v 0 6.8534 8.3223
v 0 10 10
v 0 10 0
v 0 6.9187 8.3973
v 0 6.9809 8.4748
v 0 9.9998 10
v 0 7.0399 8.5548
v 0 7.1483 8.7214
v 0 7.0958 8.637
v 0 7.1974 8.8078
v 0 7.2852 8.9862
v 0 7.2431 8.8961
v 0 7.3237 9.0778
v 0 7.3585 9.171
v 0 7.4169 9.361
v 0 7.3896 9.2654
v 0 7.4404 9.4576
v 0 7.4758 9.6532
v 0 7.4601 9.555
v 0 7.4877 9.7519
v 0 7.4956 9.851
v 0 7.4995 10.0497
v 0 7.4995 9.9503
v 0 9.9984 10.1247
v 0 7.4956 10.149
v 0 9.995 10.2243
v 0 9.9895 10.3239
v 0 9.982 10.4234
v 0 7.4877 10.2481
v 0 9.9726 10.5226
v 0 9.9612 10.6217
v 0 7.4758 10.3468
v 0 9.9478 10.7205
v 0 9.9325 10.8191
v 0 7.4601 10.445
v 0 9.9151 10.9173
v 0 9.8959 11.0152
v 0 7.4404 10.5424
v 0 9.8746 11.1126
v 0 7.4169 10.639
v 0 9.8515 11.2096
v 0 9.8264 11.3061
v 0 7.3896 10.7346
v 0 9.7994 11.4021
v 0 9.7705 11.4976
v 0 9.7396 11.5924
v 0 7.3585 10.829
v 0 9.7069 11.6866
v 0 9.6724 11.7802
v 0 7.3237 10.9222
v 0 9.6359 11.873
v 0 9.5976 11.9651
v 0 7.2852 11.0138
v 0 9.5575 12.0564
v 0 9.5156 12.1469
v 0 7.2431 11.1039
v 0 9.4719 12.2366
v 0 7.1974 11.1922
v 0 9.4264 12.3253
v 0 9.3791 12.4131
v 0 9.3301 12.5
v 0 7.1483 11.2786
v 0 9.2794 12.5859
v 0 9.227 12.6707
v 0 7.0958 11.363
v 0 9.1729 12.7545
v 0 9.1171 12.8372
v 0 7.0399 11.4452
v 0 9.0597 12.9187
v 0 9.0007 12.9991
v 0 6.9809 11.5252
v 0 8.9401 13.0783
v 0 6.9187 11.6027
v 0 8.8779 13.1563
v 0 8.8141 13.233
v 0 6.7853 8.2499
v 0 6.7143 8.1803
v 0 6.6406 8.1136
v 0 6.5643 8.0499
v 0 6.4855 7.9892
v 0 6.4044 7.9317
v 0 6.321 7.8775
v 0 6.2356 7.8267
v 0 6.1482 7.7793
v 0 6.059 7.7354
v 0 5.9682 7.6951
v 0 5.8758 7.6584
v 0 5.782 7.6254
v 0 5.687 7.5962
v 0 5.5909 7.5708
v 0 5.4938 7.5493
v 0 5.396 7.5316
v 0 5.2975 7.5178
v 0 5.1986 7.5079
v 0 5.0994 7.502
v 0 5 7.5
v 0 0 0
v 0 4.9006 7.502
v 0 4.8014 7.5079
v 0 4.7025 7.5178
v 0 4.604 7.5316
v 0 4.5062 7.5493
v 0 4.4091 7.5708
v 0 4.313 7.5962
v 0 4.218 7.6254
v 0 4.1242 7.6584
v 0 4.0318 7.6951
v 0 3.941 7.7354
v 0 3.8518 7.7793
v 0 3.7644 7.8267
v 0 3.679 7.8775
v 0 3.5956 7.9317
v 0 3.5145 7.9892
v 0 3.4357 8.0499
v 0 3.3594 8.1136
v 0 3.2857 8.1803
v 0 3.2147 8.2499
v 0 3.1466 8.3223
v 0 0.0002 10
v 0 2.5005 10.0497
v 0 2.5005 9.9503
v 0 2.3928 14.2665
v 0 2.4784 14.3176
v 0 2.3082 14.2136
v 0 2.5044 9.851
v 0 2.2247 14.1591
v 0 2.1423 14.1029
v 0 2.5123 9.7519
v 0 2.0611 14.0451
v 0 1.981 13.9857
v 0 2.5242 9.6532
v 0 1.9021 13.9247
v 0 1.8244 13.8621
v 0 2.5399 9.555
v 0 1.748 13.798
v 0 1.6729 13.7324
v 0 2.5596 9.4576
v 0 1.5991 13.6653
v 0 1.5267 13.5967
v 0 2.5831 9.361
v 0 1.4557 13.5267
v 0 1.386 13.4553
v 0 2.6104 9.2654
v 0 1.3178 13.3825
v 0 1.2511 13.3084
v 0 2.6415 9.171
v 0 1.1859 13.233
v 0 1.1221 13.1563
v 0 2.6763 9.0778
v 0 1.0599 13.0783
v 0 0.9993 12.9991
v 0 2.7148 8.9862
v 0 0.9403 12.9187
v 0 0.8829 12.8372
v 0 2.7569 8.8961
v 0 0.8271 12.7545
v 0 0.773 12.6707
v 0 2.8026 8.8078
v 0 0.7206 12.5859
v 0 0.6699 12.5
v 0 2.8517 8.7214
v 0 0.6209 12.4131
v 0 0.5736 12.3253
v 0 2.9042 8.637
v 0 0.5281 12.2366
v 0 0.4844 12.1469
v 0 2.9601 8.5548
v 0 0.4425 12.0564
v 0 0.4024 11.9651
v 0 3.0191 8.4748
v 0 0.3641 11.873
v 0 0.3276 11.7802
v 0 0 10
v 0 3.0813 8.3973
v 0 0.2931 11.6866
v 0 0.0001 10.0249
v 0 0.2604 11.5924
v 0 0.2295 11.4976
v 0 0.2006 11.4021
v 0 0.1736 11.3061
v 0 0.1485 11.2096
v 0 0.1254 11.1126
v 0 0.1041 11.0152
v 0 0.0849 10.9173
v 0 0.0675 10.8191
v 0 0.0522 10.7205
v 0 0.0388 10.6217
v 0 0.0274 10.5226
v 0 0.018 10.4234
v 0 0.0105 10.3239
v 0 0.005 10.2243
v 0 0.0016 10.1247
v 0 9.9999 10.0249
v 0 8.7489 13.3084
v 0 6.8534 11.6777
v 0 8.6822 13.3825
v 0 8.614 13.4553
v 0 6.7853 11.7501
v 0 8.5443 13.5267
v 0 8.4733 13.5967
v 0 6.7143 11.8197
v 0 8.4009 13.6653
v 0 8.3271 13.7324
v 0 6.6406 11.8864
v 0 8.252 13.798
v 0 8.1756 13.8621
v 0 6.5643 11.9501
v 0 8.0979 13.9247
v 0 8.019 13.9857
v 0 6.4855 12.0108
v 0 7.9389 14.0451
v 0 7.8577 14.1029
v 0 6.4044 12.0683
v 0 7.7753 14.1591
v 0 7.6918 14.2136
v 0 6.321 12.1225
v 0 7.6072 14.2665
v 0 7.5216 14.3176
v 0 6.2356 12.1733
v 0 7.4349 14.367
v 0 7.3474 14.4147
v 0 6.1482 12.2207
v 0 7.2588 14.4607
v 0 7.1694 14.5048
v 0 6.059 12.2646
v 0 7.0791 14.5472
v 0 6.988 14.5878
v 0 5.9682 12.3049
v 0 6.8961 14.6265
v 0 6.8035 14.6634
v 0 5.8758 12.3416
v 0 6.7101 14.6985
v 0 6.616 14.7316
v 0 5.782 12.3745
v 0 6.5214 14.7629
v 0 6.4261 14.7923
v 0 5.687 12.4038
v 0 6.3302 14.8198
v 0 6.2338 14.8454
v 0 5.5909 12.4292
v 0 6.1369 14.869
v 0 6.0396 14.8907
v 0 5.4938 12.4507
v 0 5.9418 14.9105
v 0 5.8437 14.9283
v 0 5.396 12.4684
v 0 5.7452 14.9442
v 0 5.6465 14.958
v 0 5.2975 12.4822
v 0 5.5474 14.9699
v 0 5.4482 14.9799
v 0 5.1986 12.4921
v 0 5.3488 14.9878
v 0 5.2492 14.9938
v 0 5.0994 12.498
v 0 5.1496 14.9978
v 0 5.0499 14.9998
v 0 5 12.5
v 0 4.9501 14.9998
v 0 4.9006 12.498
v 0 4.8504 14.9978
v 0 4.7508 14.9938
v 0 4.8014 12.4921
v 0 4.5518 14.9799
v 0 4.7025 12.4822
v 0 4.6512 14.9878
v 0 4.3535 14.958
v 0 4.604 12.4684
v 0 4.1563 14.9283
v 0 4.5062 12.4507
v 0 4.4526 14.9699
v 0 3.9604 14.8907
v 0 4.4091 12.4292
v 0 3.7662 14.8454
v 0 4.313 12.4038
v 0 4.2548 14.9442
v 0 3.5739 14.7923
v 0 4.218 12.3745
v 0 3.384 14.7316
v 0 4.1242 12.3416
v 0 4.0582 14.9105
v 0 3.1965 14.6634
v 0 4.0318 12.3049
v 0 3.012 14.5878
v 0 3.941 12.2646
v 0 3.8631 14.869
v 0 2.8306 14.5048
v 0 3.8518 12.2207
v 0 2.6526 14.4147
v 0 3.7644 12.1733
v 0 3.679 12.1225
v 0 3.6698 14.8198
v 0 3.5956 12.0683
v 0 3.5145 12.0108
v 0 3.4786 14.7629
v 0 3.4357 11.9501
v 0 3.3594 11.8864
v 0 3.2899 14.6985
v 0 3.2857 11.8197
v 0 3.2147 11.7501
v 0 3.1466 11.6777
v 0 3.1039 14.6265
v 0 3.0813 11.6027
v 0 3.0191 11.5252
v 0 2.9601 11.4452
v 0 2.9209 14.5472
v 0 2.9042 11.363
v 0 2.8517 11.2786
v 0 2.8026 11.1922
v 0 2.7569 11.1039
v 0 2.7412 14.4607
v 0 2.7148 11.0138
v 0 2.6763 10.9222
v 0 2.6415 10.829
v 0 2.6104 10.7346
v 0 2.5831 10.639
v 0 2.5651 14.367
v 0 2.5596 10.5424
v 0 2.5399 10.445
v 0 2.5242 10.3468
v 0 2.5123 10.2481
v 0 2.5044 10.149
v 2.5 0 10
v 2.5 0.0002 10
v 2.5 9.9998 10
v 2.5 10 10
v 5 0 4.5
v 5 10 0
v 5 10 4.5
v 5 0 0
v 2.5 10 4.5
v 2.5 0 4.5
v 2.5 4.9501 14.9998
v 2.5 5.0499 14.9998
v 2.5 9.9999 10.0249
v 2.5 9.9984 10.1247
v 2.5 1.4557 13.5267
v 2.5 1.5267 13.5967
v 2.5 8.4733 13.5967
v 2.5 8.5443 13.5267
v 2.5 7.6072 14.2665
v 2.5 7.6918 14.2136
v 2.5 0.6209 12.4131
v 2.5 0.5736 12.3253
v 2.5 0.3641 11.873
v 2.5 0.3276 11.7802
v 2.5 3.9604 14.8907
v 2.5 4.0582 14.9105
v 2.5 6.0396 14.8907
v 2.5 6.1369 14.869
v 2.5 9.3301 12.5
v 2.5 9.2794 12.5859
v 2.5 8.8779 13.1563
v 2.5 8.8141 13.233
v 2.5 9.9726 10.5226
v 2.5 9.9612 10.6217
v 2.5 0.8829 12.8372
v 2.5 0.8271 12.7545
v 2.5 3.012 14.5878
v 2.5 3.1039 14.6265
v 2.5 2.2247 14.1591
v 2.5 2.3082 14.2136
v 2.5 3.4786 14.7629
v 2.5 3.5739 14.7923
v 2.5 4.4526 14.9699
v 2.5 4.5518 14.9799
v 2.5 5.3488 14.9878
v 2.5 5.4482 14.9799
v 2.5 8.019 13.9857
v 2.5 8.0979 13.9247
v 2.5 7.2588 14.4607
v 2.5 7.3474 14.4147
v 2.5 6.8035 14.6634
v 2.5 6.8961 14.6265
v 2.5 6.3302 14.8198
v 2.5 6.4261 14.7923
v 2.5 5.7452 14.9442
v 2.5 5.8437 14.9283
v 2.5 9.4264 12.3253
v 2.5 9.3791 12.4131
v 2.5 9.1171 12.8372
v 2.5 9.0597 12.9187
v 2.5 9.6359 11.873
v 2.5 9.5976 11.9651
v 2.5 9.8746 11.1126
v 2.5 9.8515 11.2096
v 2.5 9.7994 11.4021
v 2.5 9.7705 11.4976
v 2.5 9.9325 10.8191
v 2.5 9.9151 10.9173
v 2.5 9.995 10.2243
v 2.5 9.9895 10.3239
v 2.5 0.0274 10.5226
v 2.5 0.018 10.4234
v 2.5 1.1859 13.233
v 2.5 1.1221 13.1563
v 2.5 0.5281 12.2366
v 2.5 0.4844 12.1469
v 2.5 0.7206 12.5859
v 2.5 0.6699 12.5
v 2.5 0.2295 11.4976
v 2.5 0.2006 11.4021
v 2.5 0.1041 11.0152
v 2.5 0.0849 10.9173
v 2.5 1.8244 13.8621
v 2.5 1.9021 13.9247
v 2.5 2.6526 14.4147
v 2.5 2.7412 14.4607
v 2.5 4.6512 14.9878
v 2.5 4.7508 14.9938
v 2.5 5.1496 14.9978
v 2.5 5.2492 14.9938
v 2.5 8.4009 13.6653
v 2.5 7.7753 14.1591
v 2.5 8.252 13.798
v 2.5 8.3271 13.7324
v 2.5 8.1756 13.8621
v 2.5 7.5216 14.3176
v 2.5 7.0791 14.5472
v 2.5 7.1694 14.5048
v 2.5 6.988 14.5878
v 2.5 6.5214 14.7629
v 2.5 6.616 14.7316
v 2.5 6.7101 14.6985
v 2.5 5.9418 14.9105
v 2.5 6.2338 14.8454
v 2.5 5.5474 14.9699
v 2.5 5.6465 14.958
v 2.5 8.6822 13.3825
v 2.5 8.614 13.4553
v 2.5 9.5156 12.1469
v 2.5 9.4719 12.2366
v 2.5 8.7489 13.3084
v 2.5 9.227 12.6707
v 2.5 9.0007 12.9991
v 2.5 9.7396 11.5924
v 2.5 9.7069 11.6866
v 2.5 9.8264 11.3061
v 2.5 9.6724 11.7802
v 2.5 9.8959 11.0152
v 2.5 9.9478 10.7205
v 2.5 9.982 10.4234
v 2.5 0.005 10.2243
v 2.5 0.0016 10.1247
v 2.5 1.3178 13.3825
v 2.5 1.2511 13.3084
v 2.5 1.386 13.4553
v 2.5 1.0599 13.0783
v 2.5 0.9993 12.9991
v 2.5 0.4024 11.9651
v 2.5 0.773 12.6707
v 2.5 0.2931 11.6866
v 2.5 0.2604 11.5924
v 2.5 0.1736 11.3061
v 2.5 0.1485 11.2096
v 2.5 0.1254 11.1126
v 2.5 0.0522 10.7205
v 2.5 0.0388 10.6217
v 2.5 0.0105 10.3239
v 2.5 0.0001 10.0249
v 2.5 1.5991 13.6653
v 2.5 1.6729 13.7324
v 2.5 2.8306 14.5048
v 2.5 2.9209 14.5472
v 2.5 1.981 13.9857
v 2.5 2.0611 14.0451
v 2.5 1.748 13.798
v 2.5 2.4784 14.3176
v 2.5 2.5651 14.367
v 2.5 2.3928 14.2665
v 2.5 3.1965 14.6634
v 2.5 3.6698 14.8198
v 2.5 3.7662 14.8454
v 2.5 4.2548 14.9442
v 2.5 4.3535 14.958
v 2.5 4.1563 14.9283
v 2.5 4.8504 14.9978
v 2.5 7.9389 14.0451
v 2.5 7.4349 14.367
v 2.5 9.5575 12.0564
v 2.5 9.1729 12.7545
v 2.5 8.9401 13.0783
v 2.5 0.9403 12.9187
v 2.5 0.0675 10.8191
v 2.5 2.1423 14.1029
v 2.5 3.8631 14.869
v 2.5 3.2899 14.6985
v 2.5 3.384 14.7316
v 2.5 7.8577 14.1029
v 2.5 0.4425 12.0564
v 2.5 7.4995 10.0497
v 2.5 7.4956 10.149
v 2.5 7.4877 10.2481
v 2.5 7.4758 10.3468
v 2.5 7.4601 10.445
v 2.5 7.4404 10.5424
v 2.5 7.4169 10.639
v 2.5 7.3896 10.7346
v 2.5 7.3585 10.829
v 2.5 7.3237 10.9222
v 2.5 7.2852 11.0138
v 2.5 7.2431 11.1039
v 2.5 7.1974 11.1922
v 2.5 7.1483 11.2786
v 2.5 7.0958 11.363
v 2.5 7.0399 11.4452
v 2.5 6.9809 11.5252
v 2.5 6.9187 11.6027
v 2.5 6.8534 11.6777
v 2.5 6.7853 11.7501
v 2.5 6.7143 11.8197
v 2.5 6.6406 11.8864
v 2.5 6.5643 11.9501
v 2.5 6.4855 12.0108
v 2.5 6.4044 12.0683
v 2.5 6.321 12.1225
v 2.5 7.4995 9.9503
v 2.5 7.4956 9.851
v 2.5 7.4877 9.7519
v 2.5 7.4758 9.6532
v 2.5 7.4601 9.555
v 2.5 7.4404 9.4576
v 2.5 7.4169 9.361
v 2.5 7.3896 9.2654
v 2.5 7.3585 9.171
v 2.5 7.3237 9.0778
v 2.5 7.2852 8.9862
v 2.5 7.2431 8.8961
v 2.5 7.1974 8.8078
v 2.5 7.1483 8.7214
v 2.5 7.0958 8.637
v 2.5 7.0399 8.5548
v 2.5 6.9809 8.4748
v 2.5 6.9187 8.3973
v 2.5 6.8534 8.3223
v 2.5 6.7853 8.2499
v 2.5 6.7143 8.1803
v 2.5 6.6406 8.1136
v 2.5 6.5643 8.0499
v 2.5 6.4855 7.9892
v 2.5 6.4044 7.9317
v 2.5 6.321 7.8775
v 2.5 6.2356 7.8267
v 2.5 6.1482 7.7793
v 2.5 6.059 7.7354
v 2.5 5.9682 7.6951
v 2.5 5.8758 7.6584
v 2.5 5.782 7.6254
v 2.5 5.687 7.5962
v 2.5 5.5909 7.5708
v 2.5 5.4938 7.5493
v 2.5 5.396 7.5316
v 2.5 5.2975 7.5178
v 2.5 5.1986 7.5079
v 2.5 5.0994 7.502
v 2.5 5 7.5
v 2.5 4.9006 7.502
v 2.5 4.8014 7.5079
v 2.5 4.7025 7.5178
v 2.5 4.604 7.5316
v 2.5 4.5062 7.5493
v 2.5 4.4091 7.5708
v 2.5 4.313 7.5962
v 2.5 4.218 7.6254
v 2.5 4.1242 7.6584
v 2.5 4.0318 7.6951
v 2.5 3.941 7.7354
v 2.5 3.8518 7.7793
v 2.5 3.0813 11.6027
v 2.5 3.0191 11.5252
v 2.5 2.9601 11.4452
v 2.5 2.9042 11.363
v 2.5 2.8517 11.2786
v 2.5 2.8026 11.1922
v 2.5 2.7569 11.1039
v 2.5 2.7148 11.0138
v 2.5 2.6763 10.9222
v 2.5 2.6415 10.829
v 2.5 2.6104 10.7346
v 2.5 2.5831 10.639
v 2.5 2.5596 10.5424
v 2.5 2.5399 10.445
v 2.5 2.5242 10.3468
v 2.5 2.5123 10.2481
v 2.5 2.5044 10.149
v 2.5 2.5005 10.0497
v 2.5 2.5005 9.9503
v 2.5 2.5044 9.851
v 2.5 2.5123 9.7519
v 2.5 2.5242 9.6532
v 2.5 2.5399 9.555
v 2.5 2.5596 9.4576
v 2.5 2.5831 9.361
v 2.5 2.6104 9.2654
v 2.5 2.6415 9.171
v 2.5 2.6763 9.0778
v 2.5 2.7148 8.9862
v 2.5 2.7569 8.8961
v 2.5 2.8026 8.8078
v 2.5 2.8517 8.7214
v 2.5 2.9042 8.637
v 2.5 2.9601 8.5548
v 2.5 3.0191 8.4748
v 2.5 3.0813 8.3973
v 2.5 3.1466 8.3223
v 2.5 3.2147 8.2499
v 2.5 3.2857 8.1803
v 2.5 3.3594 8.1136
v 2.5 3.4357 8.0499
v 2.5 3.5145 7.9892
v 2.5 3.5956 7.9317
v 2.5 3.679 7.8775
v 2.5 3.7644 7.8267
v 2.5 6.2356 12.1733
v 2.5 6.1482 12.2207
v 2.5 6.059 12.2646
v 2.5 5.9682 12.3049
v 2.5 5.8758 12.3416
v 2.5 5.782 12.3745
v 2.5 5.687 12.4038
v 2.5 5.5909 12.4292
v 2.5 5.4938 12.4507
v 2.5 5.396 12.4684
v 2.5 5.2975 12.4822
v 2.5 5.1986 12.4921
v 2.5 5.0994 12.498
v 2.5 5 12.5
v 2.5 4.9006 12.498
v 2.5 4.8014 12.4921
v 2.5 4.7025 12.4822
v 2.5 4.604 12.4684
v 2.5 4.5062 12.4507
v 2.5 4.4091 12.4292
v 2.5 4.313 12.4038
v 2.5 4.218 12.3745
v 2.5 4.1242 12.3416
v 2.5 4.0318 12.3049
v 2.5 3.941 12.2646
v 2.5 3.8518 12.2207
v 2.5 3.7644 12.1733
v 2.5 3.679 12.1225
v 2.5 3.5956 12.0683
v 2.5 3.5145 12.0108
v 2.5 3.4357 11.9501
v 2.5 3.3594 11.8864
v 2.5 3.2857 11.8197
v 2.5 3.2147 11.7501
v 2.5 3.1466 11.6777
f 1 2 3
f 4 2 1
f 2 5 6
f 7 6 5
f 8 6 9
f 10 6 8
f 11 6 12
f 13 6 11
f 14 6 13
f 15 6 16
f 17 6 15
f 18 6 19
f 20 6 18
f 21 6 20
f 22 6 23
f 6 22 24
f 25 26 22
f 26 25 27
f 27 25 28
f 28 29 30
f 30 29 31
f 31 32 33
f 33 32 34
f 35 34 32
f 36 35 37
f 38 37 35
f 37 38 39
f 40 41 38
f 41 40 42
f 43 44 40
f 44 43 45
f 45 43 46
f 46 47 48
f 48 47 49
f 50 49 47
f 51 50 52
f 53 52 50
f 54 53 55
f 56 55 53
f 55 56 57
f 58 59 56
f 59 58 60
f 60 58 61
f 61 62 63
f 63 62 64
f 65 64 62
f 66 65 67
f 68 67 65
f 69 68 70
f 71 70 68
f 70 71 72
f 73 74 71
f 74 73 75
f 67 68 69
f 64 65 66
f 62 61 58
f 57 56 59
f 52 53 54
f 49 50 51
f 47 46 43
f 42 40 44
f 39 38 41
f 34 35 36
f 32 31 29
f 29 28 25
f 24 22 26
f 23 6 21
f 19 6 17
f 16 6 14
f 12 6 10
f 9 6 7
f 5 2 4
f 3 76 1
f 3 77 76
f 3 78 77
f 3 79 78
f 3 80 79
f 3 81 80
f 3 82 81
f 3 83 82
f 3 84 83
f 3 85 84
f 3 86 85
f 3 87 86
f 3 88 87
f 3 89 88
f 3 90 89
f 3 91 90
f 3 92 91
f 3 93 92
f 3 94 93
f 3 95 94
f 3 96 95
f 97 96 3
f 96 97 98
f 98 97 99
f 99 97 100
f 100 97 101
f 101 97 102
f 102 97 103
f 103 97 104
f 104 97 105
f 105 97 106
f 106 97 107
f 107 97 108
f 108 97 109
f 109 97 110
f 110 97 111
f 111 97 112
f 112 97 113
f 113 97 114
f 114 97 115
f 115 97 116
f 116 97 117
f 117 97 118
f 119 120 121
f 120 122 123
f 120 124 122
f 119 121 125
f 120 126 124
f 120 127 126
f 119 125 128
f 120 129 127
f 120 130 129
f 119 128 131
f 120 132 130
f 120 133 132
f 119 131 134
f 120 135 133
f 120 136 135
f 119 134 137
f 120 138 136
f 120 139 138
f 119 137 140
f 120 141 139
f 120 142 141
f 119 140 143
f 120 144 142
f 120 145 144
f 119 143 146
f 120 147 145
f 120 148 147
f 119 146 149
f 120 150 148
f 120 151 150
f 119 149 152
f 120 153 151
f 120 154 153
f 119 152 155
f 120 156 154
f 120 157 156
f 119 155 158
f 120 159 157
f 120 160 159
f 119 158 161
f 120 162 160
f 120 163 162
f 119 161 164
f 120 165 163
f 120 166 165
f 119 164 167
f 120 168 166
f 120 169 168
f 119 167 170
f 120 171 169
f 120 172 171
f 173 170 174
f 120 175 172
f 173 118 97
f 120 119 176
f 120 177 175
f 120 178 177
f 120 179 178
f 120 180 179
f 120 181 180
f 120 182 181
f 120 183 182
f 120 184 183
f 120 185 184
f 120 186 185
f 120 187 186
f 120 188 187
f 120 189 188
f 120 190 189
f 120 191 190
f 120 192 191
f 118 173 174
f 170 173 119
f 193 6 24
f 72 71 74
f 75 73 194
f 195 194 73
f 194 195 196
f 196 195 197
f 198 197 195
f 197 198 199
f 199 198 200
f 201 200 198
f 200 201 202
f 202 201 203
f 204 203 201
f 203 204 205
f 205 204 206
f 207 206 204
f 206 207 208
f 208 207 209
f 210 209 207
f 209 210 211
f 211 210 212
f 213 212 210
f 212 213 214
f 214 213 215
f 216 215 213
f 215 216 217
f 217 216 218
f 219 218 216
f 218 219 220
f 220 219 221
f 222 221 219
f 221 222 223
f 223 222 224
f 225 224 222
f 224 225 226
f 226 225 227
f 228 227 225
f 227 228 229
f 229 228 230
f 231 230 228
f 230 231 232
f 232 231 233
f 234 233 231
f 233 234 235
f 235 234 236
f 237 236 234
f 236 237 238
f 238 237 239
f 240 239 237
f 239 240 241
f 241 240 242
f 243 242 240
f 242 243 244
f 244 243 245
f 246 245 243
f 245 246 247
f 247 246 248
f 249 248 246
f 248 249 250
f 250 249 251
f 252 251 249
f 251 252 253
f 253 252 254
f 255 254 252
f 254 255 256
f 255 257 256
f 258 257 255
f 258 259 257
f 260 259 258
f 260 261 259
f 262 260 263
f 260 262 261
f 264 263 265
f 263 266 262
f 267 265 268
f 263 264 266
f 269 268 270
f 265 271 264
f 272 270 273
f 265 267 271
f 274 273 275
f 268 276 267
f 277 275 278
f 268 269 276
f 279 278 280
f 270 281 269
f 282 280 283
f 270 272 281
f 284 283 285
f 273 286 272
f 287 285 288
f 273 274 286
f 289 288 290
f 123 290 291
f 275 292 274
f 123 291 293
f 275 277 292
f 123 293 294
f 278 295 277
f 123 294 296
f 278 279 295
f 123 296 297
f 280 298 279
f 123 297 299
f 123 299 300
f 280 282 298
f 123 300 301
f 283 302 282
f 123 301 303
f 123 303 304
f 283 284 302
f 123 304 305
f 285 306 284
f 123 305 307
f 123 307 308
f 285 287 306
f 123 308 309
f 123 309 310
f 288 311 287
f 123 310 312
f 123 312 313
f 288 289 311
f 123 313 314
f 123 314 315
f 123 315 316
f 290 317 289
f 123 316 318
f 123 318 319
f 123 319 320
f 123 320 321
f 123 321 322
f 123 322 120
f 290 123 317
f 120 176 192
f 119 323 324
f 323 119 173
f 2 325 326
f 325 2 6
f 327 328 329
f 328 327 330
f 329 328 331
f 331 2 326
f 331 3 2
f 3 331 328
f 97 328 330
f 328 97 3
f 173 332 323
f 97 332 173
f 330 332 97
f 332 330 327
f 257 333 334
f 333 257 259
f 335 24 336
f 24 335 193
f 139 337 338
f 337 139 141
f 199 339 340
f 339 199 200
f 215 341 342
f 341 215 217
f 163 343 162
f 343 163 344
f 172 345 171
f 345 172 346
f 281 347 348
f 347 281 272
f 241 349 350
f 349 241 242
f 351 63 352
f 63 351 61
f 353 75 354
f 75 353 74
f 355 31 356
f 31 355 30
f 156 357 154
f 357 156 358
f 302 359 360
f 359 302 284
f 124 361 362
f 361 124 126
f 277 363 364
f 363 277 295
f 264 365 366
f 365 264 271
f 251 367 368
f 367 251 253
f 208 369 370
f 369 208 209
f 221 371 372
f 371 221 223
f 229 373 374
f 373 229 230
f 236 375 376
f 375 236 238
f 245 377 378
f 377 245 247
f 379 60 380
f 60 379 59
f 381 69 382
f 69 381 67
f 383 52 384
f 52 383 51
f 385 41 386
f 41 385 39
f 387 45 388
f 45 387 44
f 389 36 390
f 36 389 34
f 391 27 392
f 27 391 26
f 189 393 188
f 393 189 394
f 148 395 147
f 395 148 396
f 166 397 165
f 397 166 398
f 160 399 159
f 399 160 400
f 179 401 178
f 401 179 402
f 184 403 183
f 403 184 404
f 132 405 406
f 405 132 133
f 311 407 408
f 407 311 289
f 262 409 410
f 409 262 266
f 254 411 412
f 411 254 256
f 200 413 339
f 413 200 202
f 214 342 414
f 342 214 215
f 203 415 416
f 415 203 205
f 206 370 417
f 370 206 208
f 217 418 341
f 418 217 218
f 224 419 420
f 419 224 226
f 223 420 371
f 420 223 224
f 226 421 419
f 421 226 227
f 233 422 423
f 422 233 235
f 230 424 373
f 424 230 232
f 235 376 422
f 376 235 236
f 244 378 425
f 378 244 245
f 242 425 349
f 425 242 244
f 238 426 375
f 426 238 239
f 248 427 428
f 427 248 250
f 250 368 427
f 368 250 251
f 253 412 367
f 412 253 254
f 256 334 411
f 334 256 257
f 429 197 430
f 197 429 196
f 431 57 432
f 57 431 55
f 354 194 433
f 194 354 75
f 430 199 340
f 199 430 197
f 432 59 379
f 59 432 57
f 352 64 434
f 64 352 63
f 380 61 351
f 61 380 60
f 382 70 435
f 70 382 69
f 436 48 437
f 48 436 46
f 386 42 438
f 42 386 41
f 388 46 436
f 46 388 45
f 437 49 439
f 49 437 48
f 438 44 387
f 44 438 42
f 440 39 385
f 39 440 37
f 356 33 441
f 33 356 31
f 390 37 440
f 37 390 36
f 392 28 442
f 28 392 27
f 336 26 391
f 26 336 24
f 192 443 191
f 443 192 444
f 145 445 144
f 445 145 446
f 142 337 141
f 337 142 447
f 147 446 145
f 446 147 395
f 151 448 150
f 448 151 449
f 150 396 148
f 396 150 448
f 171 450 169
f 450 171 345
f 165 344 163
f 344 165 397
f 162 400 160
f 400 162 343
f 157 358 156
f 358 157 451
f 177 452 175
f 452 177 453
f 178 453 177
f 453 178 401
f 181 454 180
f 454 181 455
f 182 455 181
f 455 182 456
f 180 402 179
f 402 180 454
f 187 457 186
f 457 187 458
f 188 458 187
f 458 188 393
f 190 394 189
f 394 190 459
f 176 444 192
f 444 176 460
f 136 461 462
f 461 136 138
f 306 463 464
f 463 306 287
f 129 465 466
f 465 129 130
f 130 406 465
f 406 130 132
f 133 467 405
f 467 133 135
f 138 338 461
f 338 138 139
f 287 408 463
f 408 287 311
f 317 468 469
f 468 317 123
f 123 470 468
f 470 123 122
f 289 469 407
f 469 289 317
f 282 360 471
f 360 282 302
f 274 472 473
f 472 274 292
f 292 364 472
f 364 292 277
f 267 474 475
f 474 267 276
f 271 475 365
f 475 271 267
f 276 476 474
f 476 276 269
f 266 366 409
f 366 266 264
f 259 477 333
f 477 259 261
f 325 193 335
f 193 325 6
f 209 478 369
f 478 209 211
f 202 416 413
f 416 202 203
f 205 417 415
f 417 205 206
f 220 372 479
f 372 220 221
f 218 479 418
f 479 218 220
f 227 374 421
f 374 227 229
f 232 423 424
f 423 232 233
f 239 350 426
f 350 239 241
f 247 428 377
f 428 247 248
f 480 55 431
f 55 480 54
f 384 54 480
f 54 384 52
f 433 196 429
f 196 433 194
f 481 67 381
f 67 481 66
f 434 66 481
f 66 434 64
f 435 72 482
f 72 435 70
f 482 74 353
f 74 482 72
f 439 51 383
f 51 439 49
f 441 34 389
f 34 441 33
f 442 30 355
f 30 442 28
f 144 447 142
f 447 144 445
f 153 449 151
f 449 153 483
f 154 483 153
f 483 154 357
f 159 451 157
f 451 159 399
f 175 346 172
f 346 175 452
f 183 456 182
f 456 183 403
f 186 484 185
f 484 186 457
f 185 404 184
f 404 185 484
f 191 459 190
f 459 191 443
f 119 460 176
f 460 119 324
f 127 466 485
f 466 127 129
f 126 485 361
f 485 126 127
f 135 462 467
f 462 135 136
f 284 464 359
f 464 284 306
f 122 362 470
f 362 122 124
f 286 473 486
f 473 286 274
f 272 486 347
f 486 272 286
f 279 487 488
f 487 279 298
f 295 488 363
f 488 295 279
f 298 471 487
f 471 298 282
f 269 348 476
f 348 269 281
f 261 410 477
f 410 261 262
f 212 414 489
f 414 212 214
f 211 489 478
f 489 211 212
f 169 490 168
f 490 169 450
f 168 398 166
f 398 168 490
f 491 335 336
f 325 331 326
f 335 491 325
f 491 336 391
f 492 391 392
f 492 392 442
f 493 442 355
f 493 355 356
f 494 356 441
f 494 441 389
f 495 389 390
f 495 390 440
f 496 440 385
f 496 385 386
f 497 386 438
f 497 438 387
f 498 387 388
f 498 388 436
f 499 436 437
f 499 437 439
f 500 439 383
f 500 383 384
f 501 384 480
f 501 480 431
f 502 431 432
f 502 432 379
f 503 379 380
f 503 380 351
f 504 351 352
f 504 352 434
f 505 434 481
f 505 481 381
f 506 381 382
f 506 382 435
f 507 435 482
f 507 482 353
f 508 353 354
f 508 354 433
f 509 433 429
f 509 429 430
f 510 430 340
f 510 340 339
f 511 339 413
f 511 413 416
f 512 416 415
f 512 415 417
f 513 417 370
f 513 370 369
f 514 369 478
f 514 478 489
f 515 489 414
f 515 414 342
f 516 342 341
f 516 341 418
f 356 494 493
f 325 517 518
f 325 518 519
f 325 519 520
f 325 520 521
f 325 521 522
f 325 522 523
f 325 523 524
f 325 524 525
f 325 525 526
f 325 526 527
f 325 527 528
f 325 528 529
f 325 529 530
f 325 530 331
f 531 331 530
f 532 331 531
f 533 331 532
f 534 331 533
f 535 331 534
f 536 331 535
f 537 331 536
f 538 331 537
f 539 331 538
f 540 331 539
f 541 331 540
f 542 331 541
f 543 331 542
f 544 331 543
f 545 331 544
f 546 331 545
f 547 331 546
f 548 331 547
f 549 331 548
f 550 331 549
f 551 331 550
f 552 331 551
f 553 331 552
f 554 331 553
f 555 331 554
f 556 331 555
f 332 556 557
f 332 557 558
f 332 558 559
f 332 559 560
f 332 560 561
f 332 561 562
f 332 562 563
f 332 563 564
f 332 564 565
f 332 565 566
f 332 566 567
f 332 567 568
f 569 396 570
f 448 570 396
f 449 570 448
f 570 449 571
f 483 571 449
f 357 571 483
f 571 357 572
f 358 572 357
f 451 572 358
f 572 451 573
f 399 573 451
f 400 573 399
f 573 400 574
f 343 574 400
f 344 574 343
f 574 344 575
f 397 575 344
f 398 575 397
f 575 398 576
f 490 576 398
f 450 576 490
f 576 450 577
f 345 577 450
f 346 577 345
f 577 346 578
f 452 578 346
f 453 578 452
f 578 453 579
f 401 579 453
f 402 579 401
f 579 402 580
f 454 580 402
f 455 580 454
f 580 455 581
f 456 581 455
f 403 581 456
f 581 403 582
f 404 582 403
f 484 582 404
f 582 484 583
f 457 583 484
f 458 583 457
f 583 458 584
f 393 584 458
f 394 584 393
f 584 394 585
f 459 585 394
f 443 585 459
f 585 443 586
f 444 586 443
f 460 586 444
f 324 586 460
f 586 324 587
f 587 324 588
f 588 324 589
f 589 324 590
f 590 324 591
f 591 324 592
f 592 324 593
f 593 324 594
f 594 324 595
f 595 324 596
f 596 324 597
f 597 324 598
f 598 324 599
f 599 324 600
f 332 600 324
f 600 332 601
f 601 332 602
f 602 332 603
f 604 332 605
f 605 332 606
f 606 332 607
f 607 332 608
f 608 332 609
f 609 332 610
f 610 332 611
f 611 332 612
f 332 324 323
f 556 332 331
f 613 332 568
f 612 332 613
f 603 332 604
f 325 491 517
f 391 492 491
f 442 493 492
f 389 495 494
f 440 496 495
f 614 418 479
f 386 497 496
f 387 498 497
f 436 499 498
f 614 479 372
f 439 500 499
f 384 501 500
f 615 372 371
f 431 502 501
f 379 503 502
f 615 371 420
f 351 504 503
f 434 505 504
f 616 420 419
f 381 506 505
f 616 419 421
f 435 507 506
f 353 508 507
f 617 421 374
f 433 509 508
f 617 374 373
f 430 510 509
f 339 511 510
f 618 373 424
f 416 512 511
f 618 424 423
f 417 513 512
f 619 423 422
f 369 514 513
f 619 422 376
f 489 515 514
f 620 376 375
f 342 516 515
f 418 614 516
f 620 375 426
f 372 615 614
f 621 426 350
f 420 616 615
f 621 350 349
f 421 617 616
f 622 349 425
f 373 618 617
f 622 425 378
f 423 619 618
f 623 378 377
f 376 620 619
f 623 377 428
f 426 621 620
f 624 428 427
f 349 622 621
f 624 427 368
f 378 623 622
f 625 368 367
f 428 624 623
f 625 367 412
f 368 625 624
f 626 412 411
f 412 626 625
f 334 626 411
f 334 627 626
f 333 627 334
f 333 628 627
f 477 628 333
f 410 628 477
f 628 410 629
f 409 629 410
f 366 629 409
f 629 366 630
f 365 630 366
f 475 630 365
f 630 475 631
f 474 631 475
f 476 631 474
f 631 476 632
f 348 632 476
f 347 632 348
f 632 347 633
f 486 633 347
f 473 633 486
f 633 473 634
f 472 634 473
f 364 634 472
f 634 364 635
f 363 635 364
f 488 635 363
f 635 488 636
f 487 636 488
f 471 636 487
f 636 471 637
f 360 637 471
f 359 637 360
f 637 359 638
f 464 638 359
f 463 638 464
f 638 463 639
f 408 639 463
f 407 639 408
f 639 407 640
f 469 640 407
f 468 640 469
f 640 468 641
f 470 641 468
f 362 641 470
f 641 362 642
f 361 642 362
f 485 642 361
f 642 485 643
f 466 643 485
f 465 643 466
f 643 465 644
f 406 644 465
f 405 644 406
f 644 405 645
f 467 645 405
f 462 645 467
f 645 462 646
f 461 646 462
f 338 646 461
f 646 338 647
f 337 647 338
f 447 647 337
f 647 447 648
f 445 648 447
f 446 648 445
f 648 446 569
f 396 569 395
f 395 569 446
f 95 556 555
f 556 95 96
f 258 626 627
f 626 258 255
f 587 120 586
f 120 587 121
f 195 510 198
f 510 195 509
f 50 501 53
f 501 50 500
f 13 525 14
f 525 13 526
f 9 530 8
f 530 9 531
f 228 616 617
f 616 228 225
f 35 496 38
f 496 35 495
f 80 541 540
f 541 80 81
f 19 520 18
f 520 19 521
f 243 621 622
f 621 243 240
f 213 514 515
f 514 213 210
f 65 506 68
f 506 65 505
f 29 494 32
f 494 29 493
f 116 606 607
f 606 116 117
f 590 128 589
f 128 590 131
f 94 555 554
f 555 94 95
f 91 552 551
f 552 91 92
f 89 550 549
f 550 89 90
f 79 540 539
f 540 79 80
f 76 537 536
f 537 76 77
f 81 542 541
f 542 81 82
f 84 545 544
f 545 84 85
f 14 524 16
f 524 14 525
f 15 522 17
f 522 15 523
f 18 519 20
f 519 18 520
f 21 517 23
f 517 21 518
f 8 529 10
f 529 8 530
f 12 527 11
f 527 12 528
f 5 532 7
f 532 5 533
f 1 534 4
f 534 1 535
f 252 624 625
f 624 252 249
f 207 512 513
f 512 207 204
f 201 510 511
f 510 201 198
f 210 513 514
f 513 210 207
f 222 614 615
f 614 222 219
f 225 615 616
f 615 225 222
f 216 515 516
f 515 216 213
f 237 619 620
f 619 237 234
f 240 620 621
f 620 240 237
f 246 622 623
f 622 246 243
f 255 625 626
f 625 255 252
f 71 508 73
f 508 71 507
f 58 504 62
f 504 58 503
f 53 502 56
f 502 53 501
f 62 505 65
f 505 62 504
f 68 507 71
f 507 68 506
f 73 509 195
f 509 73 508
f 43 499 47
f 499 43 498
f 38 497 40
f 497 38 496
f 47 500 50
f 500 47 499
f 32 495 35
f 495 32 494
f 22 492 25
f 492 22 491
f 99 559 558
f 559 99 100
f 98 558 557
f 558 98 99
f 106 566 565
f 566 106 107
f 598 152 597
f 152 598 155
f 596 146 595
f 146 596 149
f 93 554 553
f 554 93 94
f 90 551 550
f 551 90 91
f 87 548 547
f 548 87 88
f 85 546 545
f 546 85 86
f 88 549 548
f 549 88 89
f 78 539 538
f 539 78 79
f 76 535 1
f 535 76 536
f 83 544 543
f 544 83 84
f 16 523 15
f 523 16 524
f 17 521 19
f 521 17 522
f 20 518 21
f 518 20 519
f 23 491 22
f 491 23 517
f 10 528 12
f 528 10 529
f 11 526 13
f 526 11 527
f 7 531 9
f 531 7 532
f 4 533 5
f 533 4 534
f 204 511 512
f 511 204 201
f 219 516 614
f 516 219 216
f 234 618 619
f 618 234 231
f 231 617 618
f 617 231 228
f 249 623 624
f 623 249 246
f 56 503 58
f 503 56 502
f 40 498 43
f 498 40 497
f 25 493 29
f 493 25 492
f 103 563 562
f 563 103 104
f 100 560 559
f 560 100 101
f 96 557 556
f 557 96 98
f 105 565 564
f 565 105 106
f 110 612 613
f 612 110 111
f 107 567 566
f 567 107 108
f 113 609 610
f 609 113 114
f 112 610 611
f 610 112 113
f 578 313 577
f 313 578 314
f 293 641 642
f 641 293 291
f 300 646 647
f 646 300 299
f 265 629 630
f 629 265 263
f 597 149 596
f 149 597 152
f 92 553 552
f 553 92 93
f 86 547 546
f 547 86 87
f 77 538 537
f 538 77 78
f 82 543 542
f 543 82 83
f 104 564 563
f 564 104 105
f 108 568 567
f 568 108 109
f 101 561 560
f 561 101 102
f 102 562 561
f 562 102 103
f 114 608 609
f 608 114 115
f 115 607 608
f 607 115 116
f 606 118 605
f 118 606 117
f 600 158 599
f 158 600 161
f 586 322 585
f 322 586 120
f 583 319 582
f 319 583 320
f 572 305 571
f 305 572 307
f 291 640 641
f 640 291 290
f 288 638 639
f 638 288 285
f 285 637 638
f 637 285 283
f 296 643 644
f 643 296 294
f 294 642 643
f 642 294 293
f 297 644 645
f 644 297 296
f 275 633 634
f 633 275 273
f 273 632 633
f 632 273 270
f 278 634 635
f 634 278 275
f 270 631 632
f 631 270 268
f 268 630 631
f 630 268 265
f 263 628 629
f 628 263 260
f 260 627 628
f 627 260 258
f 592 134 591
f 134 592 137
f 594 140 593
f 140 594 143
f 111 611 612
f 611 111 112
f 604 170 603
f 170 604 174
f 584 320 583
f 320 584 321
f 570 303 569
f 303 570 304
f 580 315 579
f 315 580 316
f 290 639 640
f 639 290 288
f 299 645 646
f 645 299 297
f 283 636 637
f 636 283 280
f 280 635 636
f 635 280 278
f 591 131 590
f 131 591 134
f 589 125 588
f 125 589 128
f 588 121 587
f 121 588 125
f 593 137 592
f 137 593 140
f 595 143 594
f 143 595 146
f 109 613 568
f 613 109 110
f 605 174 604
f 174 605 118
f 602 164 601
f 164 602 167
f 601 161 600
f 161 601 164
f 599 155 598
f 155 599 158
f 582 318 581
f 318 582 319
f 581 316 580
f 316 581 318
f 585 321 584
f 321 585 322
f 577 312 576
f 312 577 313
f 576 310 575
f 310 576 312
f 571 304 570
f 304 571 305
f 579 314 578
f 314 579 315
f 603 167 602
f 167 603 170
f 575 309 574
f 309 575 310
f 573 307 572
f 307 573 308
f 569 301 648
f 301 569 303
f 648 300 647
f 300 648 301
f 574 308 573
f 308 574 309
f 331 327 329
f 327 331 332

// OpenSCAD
$fa = 1;
$fs = 0.1;

module Sockel() {
    difference() {
        union() {
            cube([5, 10, 10]);
            translate([0, 5, 10]) {
                rotate([0, 90, 0]) {
                    cylinder(5, 5, 5);
                }
            }
        }
        translate([2.5, 5, 10]) {
            rotate([0, 90, 0]) {
                cylinder(2.6, 5.1, 5.1);
            }
        }
        translate([-1, 5, 10]) {
            rotate([0, 90, 0]) {
                cylinder(8, 2.5, 2.5);
            }
        }
        translate([2.5, -0.5, 4.5]) {
            cube([3, 11, 5]);
        }
    }
}

Sockel();
